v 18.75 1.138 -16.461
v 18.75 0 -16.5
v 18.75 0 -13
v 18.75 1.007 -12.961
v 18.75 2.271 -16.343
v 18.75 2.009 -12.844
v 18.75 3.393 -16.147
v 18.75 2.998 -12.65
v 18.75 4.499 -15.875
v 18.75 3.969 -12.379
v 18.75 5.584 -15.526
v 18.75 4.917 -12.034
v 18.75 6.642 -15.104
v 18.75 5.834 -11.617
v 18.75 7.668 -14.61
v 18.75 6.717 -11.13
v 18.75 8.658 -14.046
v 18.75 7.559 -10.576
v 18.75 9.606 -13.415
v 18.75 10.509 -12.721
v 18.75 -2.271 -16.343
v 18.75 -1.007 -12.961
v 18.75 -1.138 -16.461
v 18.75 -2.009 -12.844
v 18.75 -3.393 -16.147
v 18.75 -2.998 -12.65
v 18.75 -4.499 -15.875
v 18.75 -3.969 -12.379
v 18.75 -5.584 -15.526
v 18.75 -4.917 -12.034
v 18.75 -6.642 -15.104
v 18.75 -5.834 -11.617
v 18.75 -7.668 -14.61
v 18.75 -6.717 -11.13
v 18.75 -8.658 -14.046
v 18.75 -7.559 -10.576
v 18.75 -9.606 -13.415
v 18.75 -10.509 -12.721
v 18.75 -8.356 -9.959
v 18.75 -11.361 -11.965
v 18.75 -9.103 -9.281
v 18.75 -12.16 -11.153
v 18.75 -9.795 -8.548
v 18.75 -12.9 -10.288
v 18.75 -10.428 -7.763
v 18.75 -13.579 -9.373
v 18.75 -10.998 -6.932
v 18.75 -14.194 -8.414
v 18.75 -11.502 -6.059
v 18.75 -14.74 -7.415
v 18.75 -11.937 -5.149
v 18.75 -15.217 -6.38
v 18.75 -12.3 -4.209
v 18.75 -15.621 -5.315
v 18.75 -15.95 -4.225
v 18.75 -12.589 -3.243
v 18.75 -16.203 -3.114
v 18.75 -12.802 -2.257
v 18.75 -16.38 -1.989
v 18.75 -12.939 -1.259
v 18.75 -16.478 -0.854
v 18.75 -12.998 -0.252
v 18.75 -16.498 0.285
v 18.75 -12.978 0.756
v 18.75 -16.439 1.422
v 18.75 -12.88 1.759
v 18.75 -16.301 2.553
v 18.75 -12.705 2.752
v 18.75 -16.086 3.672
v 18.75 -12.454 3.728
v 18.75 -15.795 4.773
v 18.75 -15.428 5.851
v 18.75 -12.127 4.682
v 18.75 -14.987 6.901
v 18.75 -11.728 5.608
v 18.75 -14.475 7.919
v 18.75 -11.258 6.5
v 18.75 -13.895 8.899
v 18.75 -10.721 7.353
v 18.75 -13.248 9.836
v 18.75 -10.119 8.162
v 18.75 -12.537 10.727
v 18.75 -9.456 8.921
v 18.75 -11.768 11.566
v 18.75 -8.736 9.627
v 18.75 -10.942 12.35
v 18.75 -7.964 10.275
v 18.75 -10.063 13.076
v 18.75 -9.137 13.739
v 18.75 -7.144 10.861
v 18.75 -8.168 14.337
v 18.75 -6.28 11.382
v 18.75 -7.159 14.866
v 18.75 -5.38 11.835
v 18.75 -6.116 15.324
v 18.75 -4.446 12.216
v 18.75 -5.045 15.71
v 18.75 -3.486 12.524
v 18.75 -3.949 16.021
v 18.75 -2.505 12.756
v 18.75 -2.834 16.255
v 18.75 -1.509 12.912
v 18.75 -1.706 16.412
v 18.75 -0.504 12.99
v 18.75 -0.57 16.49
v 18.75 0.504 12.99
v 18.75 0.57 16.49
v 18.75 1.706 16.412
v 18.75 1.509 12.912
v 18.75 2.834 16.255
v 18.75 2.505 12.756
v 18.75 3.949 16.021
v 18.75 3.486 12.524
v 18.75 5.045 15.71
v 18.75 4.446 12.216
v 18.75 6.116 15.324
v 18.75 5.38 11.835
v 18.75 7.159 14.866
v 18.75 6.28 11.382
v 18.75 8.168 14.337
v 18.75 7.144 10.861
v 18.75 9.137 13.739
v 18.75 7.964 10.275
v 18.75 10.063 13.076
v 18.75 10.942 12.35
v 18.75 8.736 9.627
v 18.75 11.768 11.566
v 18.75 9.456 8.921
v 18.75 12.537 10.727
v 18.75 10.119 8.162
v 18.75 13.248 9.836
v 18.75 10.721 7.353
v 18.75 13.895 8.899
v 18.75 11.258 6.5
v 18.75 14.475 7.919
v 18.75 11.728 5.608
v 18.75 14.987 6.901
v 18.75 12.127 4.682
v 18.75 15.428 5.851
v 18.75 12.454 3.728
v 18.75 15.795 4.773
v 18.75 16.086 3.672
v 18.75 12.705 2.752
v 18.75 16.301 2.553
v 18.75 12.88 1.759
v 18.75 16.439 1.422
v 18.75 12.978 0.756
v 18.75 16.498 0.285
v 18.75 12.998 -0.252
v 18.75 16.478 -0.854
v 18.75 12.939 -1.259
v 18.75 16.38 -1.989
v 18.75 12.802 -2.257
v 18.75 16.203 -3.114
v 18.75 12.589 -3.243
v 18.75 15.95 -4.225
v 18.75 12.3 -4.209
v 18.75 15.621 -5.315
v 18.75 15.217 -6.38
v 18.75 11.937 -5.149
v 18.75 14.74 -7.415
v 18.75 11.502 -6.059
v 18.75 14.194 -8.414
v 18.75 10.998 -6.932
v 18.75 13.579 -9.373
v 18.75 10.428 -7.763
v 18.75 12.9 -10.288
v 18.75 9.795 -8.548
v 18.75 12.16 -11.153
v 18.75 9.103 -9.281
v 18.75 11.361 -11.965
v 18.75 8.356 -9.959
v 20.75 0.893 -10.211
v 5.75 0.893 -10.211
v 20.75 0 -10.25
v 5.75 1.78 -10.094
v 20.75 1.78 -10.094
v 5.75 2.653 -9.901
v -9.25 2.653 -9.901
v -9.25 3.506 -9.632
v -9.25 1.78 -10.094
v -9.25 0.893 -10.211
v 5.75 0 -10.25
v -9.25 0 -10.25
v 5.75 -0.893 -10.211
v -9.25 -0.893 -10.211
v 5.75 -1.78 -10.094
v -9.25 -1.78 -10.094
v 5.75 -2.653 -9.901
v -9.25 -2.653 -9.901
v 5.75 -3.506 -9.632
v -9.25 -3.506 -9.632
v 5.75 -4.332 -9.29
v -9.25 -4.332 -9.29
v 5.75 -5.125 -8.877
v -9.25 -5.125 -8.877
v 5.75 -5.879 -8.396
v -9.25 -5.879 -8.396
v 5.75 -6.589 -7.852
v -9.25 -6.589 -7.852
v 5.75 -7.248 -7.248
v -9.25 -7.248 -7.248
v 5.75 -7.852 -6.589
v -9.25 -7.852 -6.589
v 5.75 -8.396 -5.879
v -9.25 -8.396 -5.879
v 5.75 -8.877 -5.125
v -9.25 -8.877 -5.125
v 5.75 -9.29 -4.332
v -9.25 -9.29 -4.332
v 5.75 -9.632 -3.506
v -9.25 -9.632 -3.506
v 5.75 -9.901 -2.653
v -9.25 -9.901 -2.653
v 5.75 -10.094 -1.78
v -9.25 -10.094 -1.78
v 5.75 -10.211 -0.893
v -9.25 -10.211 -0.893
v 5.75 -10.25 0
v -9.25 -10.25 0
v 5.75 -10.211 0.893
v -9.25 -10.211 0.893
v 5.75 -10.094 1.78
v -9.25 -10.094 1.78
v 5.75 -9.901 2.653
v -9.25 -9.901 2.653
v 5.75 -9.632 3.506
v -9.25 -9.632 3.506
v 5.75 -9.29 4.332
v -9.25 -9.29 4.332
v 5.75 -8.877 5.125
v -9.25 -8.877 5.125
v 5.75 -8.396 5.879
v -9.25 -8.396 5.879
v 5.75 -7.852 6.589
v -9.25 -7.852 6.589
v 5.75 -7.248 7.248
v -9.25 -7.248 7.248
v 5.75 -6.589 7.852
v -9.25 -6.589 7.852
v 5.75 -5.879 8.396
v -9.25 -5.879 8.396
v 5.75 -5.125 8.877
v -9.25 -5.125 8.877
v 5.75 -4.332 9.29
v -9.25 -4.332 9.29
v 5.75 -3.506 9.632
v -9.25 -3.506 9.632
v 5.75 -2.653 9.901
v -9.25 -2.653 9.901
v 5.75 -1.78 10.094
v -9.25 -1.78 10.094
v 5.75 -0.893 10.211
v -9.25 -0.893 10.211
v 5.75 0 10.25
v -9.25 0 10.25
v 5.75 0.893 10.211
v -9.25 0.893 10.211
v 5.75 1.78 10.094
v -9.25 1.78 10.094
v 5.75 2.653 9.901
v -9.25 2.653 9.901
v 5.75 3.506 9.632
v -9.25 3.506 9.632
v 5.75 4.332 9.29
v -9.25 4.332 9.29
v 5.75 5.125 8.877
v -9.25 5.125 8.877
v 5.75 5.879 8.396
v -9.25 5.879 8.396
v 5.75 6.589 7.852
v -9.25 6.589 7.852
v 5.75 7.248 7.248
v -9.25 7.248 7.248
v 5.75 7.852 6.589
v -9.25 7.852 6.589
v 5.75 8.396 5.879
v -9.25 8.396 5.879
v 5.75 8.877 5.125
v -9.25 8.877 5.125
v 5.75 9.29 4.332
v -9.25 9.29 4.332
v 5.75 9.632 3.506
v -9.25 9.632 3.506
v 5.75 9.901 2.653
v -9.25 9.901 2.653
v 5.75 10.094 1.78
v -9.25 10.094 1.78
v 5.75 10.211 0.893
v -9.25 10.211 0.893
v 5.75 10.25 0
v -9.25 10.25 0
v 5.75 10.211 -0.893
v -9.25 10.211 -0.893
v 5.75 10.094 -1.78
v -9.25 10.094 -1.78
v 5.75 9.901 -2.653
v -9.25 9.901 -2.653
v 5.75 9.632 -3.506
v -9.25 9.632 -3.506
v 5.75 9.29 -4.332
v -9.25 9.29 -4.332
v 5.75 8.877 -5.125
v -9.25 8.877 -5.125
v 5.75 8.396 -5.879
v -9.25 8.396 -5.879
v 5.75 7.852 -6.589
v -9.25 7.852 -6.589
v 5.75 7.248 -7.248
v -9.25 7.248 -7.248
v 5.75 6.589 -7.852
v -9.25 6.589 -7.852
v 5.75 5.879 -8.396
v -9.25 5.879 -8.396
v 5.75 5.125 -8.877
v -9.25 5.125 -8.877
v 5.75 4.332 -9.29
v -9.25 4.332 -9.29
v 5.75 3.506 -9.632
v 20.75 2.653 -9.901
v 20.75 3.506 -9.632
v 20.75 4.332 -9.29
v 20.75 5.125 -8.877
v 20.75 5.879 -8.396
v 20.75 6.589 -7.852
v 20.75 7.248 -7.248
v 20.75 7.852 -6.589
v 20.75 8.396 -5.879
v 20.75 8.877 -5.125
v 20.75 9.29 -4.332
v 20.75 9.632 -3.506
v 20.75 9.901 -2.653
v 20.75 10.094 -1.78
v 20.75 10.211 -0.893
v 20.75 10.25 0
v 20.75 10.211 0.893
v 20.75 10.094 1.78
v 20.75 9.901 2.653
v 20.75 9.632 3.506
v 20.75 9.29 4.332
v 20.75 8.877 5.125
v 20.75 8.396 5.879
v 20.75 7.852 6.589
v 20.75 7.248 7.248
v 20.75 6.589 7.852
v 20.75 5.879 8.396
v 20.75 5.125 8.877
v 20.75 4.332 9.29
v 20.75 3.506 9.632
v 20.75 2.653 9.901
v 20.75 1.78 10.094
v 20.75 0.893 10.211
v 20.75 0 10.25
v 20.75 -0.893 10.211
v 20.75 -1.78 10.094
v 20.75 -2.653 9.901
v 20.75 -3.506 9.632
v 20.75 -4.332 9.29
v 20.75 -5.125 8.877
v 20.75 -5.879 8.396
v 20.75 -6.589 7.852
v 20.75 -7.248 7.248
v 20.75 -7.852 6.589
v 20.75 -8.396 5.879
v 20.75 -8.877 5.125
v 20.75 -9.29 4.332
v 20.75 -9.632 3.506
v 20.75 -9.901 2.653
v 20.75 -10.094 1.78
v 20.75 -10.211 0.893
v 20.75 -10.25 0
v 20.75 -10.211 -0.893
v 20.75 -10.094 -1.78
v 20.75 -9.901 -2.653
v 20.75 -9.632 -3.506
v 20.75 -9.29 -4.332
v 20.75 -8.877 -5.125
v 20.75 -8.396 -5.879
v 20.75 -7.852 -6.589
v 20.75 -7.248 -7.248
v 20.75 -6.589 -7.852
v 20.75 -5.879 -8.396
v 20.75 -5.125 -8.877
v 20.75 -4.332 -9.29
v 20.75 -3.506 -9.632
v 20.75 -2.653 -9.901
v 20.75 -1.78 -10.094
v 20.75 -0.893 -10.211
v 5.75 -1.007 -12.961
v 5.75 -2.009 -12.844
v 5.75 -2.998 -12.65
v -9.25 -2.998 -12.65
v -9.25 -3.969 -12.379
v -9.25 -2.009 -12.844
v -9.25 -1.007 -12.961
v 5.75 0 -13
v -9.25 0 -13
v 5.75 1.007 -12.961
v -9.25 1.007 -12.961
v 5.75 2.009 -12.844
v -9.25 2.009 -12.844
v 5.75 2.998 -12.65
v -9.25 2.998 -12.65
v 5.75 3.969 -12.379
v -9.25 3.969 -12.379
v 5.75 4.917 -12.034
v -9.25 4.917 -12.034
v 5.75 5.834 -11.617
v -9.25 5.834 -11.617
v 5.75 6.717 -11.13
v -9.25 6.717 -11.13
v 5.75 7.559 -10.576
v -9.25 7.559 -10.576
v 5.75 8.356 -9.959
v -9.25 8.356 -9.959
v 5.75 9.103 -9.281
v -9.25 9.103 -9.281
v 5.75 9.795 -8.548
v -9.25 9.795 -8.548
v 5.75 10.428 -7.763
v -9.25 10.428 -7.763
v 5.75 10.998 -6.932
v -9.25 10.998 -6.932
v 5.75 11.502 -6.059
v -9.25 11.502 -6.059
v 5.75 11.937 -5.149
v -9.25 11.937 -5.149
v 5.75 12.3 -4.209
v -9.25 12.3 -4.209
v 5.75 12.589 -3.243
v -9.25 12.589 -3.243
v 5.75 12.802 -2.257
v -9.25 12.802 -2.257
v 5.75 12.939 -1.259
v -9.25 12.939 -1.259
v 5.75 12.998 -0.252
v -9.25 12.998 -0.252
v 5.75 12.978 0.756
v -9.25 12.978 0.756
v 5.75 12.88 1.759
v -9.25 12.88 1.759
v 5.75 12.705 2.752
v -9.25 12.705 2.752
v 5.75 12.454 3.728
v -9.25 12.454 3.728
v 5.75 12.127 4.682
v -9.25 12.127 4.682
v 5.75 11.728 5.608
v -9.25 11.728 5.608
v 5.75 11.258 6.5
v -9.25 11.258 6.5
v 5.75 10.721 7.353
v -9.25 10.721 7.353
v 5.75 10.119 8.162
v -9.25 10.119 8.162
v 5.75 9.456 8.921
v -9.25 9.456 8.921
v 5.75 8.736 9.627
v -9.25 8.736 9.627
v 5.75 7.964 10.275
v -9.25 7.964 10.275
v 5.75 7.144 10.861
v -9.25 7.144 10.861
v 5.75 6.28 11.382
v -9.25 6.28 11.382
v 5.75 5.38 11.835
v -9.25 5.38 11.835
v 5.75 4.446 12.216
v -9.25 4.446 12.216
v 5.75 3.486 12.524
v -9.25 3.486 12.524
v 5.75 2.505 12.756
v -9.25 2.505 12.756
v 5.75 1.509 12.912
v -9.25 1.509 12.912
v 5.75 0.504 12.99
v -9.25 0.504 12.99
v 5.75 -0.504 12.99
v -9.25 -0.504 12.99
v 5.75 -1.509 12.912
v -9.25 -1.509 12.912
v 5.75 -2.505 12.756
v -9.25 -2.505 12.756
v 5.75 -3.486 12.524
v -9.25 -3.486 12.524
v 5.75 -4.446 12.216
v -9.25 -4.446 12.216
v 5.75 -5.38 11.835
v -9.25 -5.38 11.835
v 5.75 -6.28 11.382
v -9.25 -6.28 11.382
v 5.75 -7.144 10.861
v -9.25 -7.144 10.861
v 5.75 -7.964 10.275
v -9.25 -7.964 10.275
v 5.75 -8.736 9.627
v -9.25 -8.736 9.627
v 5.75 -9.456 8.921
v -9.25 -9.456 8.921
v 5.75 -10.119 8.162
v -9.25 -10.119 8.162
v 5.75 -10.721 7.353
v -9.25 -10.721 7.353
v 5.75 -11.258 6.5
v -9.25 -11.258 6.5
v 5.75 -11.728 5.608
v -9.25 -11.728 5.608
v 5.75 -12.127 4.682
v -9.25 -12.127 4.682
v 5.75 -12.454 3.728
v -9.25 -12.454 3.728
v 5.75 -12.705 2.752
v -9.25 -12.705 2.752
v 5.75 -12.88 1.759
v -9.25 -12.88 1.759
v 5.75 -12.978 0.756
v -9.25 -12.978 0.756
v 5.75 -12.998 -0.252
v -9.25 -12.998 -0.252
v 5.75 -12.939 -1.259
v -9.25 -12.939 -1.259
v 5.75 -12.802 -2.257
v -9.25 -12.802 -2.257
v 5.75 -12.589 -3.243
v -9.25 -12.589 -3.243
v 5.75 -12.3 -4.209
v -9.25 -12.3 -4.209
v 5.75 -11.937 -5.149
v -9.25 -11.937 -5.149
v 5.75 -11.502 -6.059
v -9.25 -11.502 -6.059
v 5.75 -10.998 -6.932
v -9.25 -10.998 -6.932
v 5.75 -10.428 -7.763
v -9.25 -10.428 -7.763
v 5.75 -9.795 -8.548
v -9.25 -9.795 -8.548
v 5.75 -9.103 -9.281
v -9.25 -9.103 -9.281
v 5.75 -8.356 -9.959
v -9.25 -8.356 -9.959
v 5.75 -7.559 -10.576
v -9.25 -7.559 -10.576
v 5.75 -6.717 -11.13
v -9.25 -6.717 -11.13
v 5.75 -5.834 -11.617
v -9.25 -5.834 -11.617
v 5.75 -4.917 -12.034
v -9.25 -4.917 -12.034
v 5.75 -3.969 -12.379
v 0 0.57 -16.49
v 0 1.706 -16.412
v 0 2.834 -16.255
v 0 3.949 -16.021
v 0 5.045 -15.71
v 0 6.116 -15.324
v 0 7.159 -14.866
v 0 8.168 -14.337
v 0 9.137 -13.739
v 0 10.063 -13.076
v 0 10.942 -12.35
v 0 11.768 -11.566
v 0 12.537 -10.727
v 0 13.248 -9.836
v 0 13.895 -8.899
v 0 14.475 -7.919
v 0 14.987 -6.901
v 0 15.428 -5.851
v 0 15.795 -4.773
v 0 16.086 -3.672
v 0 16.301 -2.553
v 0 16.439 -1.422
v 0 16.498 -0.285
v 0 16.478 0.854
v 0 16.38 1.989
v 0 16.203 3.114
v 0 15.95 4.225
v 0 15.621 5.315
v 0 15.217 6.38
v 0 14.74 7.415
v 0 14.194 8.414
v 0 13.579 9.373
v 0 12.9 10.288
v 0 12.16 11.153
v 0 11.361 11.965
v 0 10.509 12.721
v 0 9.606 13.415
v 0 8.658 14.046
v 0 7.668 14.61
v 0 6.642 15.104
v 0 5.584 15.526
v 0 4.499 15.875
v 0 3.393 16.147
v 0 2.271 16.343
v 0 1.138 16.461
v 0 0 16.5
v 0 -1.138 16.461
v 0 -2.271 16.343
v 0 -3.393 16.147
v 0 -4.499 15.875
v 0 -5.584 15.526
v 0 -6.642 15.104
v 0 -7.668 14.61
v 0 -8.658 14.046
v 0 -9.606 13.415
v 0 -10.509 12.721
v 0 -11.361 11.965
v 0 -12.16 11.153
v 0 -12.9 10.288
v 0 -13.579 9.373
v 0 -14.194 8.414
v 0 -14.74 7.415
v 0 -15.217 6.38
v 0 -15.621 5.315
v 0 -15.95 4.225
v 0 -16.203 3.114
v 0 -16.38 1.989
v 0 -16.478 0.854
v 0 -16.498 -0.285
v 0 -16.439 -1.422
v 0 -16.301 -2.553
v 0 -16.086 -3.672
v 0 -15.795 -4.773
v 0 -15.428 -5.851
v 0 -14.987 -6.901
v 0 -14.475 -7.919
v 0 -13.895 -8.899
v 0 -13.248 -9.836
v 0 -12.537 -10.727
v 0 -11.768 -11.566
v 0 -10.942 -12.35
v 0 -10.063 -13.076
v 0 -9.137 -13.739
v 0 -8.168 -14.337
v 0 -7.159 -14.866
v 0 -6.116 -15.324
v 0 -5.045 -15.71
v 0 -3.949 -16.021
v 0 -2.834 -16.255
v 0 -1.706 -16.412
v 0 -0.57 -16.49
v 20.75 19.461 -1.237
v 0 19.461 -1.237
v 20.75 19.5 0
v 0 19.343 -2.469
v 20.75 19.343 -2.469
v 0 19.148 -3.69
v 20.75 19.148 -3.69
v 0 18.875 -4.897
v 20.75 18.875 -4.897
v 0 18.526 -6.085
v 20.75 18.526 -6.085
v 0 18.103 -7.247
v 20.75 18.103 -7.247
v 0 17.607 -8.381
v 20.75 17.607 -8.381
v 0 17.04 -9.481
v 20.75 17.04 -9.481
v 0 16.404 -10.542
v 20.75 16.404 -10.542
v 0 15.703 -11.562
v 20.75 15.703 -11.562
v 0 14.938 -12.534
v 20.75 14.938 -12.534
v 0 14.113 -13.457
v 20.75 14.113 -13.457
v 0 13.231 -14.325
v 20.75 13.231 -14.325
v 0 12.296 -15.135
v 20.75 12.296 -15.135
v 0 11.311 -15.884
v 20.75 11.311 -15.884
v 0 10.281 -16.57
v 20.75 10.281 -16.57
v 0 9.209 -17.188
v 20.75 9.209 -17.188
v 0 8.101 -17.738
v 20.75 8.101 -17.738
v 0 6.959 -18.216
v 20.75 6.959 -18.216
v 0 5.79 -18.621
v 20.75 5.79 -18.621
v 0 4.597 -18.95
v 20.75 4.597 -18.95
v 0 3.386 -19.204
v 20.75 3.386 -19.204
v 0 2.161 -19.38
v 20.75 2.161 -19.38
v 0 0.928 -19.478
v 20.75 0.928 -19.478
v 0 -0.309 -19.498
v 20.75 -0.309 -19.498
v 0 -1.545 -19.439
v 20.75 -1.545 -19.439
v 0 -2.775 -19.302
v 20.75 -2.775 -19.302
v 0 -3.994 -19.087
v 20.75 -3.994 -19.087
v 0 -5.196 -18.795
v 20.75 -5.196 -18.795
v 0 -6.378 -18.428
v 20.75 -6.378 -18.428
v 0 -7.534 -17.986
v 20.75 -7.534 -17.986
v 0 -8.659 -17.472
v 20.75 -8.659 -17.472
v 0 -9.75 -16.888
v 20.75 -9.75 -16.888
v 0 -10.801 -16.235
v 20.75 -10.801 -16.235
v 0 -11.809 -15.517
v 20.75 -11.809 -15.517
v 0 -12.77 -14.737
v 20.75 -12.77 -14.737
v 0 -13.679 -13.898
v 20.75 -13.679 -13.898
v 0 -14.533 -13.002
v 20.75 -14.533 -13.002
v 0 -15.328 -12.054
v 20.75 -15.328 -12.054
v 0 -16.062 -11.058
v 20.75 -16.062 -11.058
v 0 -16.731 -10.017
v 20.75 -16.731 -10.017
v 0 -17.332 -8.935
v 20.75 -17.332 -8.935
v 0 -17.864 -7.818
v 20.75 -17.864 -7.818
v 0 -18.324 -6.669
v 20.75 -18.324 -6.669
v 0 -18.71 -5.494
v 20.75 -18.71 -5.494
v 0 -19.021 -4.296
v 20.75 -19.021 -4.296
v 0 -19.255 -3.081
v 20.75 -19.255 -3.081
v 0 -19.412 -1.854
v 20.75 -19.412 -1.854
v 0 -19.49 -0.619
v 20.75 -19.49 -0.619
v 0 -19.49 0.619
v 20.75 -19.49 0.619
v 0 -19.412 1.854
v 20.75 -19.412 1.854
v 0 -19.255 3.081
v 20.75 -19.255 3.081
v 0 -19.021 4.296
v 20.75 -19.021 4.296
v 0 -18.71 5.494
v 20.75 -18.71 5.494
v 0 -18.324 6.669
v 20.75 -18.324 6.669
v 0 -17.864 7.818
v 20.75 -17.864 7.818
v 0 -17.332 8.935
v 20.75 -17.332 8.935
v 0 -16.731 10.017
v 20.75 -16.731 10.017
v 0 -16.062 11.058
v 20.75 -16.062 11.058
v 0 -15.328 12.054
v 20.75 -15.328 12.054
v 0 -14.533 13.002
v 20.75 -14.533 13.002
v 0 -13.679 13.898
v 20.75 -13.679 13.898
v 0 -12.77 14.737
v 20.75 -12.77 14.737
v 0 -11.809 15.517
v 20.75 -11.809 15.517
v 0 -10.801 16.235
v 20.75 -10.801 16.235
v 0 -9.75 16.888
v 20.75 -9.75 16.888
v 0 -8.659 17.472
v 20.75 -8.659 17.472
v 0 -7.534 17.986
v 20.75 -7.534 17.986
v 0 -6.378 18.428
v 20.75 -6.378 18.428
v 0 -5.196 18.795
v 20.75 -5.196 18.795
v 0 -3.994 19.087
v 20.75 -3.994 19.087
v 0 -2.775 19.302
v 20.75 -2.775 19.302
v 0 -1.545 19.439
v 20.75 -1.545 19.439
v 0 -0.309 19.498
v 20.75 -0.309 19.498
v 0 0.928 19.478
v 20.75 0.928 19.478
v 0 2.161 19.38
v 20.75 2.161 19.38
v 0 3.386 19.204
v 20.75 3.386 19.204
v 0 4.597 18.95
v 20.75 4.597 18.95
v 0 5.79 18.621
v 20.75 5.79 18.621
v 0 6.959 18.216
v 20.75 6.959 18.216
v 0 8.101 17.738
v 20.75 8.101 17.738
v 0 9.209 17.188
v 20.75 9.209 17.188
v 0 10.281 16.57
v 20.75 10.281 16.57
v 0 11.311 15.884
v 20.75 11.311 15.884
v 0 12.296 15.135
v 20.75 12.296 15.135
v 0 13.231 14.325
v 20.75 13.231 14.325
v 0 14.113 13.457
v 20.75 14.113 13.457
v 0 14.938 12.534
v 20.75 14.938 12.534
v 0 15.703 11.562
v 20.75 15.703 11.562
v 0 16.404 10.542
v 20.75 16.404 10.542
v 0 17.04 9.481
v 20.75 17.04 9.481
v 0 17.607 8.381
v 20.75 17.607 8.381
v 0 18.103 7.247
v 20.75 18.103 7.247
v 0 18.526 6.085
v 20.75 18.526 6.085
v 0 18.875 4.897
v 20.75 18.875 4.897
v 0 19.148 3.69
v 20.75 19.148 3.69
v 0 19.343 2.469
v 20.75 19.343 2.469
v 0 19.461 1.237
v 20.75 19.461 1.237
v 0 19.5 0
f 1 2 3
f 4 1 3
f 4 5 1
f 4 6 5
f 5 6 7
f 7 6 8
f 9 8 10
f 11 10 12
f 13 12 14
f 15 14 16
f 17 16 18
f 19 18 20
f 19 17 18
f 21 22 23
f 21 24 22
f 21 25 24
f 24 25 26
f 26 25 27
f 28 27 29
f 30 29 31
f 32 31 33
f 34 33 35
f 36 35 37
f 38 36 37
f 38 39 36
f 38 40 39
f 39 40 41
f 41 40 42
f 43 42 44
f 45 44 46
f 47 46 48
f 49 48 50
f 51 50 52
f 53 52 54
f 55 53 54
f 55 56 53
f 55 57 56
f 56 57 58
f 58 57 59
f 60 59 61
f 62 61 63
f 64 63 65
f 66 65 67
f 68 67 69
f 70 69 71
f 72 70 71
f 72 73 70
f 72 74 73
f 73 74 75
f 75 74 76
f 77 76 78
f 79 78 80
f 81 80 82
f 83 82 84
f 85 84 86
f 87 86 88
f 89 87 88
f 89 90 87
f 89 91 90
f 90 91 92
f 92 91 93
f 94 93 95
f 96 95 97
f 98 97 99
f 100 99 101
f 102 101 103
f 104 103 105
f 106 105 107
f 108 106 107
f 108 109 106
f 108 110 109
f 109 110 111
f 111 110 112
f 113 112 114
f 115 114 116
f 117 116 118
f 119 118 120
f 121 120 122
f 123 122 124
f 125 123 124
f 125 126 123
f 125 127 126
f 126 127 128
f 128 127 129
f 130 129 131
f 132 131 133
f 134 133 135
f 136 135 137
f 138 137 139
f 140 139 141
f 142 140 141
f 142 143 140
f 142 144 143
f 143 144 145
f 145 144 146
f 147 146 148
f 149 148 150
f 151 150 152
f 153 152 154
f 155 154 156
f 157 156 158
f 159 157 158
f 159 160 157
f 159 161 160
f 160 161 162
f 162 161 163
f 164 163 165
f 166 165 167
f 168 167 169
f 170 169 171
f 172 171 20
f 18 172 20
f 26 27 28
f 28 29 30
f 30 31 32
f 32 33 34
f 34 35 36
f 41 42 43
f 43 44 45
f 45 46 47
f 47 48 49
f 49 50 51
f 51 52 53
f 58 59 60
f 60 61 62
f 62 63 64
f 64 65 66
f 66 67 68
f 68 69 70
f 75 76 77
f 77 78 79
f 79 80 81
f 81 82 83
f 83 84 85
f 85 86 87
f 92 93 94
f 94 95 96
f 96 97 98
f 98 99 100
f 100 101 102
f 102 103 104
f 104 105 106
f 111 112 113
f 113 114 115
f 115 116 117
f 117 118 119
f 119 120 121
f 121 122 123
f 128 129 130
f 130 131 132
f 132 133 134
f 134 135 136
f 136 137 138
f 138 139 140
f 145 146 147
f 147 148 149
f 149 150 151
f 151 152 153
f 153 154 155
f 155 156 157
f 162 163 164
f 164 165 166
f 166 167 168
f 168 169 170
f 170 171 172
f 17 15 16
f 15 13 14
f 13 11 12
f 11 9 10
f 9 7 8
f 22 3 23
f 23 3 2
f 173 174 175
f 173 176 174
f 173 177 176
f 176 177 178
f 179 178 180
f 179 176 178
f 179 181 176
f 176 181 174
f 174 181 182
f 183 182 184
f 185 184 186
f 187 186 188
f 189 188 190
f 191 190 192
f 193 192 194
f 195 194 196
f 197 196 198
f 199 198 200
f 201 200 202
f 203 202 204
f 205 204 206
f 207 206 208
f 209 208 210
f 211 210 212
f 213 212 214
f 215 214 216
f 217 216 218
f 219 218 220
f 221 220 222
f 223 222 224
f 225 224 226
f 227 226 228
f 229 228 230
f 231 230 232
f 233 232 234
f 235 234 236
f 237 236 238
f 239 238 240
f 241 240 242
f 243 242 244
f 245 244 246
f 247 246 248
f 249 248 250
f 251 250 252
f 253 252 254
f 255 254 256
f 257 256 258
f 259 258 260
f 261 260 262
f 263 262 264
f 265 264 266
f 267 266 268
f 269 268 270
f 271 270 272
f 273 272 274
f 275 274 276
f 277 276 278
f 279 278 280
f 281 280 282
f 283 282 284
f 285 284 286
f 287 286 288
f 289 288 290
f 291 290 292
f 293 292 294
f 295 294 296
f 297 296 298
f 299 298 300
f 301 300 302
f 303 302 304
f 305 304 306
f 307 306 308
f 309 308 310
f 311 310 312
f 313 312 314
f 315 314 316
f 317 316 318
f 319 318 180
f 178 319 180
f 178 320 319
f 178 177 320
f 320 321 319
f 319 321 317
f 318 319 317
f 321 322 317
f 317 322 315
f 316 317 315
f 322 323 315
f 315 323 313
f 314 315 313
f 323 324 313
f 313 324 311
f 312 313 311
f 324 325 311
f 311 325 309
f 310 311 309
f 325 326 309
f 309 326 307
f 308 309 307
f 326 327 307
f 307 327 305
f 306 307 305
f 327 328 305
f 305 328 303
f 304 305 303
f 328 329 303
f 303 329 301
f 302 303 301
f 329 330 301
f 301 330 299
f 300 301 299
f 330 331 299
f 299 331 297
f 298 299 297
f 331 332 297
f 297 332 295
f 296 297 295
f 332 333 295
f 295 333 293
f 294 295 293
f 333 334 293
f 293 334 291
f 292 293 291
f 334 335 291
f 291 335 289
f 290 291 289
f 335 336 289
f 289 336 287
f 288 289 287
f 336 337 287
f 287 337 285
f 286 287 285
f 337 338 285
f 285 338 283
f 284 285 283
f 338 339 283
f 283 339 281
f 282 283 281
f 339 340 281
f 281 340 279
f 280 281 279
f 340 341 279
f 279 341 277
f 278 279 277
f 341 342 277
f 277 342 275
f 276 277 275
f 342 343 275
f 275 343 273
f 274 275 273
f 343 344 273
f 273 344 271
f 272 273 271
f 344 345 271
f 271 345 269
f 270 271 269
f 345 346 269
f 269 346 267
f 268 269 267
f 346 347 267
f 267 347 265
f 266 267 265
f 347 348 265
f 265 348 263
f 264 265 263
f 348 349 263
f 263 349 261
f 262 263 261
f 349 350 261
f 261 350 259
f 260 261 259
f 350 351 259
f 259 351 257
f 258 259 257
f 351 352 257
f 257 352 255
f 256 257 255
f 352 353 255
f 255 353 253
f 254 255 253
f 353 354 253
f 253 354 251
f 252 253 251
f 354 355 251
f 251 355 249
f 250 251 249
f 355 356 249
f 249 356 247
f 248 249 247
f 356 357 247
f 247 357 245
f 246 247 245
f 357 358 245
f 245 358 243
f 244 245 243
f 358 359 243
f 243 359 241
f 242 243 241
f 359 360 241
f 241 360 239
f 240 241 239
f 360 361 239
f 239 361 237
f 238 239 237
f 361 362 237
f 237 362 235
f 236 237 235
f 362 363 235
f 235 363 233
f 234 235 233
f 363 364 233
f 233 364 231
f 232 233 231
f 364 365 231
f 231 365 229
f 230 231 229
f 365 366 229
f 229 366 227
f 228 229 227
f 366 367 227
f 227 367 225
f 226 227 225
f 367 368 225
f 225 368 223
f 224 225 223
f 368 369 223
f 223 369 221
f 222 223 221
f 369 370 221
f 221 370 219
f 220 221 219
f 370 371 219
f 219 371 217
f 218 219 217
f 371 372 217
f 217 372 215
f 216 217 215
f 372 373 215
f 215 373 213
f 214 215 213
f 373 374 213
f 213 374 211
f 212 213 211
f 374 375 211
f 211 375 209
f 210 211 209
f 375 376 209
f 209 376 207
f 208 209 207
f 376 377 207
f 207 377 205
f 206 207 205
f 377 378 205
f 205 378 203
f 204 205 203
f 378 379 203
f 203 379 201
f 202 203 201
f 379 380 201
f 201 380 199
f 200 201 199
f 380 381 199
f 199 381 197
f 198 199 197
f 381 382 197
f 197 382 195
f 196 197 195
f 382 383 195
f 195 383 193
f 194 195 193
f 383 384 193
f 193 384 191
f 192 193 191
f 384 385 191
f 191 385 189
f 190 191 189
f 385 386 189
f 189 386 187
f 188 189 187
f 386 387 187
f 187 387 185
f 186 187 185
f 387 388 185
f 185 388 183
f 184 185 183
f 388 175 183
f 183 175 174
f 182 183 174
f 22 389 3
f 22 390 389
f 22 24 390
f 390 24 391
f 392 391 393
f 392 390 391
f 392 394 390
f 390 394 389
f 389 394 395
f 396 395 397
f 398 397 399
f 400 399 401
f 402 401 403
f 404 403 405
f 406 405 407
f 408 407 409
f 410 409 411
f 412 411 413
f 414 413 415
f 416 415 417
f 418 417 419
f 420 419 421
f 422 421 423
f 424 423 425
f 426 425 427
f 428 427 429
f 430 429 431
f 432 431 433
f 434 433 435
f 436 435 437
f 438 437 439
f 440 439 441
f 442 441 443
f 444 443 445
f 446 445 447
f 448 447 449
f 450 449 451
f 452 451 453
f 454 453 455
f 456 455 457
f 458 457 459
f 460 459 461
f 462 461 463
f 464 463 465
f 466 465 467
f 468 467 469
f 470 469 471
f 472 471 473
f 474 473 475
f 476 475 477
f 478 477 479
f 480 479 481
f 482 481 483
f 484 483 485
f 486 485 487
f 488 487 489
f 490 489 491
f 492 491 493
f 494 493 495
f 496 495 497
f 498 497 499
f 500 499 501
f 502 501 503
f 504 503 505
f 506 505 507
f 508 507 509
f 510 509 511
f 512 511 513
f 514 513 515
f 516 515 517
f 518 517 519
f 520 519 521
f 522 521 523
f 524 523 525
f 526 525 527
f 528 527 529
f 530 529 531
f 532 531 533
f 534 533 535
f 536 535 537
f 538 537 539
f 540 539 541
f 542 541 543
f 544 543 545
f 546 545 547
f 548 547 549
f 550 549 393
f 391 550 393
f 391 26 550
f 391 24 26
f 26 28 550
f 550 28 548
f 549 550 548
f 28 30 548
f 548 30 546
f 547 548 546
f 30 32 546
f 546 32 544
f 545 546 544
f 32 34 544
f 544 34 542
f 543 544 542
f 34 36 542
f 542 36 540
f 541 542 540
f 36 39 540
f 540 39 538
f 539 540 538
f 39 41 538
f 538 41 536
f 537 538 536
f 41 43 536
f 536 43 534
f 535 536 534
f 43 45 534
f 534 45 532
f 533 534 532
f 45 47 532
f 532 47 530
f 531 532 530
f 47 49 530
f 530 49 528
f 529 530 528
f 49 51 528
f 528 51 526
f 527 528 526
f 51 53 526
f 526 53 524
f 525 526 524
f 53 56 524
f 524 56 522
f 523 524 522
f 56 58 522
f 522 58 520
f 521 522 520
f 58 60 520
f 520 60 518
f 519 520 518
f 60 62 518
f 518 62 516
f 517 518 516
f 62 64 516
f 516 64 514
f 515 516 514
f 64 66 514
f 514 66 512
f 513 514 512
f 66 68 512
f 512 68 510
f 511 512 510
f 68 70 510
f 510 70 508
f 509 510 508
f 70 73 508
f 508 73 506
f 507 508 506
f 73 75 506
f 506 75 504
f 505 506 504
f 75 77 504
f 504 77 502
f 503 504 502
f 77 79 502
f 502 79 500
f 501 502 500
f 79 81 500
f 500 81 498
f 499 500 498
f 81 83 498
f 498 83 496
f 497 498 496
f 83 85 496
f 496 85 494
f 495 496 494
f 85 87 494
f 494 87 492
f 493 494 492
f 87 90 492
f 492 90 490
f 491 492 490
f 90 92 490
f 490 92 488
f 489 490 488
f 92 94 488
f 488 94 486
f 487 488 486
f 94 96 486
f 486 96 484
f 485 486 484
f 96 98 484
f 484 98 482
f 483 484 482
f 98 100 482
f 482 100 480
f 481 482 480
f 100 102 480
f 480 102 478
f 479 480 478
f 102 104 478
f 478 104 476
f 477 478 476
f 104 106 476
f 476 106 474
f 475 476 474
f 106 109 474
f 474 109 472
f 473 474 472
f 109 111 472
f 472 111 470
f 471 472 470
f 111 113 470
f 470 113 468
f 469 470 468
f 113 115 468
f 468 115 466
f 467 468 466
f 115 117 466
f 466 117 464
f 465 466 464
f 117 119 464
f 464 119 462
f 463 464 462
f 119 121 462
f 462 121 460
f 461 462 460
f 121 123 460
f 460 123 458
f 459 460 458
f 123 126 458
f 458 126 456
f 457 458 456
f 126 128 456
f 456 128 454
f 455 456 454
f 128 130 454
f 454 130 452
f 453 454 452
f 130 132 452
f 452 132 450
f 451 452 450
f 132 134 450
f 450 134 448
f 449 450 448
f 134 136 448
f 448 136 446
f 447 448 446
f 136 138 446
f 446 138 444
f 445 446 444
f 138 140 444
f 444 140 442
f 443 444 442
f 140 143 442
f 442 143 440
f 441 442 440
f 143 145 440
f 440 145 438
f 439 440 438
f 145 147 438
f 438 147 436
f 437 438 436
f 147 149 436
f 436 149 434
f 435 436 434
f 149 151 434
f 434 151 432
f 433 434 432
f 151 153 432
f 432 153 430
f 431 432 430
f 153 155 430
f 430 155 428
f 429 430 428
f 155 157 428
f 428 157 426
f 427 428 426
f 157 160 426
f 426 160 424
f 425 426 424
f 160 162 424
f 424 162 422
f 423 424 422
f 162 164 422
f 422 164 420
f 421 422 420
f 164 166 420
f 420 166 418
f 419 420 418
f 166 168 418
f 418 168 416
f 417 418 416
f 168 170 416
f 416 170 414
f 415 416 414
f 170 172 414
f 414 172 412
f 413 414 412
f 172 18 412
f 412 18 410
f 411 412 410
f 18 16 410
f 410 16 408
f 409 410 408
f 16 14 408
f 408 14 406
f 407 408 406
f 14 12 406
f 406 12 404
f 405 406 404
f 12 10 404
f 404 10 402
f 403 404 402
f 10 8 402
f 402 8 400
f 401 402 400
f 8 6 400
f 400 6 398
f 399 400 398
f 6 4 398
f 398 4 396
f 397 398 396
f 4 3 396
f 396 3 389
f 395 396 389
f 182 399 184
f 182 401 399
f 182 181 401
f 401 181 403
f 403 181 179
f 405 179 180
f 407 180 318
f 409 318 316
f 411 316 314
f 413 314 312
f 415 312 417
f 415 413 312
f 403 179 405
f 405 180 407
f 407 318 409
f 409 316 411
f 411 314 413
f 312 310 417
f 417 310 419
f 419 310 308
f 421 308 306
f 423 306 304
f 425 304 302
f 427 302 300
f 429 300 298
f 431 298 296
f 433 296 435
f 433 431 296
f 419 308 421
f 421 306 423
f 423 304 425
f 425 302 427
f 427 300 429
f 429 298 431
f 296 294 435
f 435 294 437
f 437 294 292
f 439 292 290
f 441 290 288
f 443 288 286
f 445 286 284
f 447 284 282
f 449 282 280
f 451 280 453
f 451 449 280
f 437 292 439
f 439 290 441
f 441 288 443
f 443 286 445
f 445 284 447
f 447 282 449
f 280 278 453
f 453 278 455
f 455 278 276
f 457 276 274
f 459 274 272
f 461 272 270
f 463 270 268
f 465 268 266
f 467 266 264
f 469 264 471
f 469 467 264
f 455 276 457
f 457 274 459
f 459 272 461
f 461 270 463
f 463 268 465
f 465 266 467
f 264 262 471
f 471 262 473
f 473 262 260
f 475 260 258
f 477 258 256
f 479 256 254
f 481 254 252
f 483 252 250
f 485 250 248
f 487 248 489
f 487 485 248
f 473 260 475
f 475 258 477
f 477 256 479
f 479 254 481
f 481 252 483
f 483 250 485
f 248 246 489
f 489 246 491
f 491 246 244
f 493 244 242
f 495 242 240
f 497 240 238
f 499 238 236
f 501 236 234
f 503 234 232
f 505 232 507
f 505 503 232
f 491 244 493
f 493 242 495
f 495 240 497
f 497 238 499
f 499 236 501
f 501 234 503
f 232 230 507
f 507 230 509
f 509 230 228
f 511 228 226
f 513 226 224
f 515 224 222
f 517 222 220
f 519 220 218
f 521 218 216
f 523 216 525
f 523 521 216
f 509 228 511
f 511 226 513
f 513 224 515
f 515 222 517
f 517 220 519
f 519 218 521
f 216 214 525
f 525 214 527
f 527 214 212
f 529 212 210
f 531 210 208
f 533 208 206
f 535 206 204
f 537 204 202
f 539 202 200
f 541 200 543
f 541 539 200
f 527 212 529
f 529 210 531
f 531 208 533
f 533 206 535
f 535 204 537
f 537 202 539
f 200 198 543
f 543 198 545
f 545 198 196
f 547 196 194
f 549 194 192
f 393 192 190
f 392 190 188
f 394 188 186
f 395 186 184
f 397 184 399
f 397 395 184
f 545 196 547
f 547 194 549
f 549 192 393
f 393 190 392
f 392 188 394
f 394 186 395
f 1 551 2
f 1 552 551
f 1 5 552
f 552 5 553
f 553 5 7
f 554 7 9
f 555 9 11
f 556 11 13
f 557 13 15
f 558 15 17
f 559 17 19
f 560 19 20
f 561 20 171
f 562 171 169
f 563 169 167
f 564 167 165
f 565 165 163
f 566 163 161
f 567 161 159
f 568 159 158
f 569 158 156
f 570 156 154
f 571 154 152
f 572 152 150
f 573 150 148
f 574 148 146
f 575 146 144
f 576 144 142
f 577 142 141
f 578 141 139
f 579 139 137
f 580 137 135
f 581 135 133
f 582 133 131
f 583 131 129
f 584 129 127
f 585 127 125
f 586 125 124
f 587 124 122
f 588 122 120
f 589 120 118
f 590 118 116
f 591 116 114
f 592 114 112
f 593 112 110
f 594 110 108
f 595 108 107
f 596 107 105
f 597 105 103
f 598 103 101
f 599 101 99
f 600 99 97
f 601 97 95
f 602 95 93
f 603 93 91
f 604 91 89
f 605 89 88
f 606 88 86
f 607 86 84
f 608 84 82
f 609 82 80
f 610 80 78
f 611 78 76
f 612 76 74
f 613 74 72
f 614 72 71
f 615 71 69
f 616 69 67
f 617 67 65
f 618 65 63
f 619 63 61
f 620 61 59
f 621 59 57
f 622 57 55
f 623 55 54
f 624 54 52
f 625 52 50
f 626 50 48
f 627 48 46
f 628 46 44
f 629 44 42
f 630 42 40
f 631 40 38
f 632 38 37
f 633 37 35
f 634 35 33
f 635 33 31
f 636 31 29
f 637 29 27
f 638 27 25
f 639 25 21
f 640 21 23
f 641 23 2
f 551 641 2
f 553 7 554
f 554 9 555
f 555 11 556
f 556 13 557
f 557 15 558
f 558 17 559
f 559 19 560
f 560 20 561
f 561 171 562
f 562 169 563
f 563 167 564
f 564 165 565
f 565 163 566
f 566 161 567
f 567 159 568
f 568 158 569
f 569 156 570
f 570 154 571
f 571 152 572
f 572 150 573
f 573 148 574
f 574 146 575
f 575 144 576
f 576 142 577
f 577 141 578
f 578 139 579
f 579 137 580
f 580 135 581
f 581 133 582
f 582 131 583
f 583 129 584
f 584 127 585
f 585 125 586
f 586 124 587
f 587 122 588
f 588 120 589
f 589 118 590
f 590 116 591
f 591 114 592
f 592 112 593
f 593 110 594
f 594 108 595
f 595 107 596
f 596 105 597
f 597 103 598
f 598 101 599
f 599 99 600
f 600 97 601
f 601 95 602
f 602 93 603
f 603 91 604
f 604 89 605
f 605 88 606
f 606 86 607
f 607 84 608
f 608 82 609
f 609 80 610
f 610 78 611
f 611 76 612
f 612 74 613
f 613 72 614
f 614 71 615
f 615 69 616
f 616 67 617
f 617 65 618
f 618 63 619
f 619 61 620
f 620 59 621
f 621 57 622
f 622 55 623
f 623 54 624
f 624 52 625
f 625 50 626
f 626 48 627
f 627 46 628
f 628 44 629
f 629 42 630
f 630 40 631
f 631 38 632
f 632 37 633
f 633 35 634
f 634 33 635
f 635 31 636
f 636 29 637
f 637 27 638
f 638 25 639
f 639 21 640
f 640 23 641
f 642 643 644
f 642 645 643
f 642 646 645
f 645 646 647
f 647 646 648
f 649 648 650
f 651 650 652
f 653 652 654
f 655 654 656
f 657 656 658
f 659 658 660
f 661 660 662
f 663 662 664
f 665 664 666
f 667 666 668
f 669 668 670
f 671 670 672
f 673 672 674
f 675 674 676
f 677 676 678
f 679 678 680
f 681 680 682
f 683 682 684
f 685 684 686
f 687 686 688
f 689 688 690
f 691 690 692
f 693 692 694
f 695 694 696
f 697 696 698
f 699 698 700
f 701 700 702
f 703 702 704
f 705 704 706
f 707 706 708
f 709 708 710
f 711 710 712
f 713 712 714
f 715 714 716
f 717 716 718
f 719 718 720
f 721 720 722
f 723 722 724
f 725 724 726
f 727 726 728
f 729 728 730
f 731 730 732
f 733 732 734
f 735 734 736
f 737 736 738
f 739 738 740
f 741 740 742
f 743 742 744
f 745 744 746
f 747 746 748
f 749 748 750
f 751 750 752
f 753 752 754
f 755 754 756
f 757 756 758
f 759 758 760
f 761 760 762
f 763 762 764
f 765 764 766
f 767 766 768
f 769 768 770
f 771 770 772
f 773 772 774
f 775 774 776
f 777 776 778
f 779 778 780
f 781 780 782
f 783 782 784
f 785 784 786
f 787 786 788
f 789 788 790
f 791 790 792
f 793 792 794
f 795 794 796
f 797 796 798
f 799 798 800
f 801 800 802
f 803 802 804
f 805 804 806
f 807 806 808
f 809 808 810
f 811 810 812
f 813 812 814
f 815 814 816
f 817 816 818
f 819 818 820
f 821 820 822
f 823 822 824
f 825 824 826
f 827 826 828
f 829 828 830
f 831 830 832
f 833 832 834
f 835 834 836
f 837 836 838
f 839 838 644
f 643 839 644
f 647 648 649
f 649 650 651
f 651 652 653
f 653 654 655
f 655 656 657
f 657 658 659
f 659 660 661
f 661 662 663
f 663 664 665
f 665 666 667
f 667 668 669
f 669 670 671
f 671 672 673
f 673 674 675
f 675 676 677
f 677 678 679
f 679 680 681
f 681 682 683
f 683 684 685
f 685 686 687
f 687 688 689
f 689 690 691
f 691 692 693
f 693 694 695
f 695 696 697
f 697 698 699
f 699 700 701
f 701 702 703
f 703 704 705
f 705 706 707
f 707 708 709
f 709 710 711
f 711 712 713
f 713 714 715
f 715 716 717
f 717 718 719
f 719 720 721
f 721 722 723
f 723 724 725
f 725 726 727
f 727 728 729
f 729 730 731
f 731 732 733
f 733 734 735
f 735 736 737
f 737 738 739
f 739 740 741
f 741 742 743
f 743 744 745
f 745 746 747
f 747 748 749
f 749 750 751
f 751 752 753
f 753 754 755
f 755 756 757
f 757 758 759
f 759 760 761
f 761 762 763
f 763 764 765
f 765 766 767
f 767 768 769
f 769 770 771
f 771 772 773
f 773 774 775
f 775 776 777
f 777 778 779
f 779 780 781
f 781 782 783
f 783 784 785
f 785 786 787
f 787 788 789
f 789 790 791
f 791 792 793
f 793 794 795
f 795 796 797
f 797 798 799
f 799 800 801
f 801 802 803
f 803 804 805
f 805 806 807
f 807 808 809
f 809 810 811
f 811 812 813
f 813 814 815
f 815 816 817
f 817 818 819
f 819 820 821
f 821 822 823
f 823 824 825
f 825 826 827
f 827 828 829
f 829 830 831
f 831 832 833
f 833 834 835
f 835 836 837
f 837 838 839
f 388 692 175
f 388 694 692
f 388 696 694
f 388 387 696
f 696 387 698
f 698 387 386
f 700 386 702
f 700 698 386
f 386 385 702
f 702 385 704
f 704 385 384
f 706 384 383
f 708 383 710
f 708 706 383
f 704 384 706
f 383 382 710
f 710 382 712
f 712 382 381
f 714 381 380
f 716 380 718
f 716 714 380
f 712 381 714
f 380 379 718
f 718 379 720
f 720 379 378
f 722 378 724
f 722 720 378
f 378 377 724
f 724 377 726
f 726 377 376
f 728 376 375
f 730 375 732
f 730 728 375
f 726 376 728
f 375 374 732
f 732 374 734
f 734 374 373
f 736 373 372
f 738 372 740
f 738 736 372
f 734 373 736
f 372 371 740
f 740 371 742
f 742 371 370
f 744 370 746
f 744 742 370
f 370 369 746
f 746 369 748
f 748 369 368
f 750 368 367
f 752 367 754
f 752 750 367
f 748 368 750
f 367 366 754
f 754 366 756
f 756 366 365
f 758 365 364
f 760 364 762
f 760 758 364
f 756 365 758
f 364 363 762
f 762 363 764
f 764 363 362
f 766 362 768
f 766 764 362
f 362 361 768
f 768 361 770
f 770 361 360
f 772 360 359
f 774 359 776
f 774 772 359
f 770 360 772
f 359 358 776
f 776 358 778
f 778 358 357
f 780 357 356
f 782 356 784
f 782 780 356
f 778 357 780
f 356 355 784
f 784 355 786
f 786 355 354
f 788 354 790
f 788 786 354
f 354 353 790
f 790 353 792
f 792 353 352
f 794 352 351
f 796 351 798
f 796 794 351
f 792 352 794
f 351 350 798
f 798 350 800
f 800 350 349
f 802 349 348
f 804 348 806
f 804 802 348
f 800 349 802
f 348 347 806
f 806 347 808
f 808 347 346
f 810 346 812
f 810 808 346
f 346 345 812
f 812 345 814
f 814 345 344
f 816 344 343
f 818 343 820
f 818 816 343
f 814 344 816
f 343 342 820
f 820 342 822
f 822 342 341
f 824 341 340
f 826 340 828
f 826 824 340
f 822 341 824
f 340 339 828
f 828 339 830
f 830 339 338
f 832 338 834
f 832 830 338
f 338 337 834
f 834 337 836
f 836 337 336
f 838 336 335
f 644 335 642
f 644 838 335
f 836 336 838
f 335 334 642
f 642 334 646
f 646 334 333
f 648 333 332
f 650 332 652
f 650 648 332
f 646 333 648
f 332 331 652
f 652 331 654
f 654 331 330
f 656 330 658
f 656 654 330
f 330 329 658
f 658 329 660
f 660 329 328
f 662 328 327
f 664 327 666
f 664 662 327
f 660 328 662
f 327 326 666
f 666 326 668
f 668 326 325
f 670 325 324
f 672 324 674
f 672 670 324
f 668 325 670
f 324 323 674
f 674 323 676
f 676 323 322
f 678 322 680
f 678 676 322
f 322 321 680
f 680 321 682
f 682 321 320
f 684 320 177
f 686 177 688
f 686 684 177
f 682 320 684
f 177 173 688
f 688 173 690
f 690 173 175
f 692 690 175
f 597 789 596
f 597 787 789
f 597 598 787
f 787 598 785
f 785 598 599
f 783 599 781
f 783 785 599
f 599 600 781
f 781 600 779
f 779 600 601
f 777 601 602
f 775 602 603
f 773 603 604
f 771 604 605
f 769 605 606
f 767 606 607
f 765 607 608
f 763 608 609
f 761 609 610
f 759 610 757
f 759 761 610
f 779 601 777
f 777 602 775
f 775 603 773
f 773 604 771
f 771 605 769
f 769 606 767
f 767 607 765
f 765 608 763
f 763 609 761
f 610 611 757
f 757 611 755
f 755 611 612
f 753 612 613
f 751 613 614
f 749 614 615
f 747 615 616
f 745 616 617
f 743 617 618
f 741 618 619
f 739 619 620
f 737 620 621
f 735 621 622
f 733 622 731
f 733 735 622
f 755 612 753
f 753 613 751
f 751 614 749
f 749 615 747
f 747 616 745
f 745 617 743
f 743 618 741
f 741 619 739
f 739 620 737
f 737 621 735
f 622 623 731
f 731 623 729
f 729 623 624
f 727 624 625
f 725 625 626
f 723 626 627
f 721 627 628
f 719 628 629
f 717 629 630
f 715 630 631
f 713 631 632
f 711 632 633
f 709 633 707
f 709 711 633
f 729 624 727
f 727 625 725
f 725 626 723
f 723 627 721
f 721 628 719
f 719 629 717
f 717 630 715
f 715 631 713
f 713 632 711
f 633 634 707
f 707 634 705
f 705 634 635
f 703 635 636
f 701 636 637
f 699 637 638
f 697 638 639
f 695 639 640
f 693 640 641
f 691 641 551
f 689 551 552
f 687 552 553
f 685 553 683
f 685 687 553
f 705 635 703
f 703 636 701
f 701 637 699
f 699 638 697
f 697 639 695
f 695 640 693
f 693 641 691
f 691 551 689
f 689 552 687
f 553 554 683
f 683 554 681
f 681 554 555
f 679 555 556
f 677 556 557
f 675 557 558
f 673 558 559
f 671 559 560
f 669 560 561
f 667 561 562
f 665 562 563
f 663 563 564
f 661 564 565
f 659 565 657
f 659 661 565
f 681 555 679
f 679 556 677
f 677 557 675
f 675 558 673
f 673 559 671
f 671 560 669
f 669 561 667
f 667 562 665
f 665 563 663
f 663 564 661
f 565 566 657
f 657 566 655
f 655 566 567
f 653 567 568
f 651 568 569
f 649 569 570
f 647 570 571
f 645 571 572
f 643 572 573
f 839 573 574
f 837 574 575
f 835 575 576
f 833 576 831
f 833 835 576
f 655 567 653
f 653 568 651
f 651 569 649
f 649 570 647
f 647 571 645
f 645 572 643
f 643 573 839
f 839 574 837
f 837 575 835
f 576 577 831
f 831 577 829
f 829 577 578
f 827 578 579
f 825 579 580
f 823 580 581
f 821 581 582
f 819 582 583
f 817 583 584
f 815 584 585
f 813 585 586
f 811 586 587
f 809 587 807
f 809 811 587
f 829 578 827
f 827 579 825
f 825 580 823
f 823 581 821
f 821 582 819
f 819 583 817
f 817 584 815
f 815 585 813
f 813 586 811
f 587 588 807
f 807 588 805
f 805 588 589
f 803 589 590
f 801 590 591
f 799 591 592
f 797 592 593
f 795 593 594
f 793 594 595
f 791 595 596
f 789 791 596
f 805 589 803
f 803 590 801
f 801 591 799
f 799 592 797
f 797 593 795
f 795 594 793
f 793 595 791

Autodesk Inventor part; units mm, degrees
ref_plane "YZ Plane" through (0, 0, 0) normal (1, 0, 0) x (0, 1, 0)
ref_plane "XY Plane" through (0, 0, 0) normal (0, 0, 1) x (1, 0, 0)
sketch "Sketch1" plane through (0, 0, 0) normal (1, 0, 0) x (0, 1, 0)
  circle A0 centre (0, 0) radius 16.5
  circle A1 centre (0, 0) radius 19.5
  dimension "d0" = 33
  dimension "d1" = 3
extrude "Extrusion1" add sketch "Sketch1" along normal blind 20.75 contours A0 | A1
sketch "Sketch2" plane through (0, 0, 0) normal (-1, 0, 0) x (0, 0, 1)
  circle A0 centre (0, 0) radius 19.5 projected
  circle A1 centre (0, 0) radius 16.5
  dimension "d4" = 33
extrude "Extrusion2" cut sketch "Sketch2" against normal blind 25 contours A1
ref_plane "Work Plane2" through (0, -19.5, 0) normal (0, 1, 0) x (-1, 0, 0)
sketch "Sketch6" plane through (20.75, 0, 0) normal (1, 0, 0) x (0, 0, -1)
  circle A0 centre (0, 0) radius 10.25 projected
  circle A1 centre (0, 0) radius 19.5 projected
  circle A2 centre (0, 0) radius 13
  dimension "d14" = 26
extrude "Extrusion5" add sketch "Sketch6" against normal blind 30 contours A2
sketch "Sketch7" plane through (20.75, 0, 0) normal (1, 0, 0) x (0, 0, -1)
  circle A0 centre (0, 0) radius 19.5 projected
  circle A1 centre (0, 0) radius 19.5
  circle A2 centre (0, 0) radius 16.5 projected
  circle A3 centre (0, 0) radius 10.25
  dimension "d23" = 20.5
extrude "Extrusion7" add sketch "Sketch7" against normal blind 2 contours A2
properties part number "union pvc tubo"
